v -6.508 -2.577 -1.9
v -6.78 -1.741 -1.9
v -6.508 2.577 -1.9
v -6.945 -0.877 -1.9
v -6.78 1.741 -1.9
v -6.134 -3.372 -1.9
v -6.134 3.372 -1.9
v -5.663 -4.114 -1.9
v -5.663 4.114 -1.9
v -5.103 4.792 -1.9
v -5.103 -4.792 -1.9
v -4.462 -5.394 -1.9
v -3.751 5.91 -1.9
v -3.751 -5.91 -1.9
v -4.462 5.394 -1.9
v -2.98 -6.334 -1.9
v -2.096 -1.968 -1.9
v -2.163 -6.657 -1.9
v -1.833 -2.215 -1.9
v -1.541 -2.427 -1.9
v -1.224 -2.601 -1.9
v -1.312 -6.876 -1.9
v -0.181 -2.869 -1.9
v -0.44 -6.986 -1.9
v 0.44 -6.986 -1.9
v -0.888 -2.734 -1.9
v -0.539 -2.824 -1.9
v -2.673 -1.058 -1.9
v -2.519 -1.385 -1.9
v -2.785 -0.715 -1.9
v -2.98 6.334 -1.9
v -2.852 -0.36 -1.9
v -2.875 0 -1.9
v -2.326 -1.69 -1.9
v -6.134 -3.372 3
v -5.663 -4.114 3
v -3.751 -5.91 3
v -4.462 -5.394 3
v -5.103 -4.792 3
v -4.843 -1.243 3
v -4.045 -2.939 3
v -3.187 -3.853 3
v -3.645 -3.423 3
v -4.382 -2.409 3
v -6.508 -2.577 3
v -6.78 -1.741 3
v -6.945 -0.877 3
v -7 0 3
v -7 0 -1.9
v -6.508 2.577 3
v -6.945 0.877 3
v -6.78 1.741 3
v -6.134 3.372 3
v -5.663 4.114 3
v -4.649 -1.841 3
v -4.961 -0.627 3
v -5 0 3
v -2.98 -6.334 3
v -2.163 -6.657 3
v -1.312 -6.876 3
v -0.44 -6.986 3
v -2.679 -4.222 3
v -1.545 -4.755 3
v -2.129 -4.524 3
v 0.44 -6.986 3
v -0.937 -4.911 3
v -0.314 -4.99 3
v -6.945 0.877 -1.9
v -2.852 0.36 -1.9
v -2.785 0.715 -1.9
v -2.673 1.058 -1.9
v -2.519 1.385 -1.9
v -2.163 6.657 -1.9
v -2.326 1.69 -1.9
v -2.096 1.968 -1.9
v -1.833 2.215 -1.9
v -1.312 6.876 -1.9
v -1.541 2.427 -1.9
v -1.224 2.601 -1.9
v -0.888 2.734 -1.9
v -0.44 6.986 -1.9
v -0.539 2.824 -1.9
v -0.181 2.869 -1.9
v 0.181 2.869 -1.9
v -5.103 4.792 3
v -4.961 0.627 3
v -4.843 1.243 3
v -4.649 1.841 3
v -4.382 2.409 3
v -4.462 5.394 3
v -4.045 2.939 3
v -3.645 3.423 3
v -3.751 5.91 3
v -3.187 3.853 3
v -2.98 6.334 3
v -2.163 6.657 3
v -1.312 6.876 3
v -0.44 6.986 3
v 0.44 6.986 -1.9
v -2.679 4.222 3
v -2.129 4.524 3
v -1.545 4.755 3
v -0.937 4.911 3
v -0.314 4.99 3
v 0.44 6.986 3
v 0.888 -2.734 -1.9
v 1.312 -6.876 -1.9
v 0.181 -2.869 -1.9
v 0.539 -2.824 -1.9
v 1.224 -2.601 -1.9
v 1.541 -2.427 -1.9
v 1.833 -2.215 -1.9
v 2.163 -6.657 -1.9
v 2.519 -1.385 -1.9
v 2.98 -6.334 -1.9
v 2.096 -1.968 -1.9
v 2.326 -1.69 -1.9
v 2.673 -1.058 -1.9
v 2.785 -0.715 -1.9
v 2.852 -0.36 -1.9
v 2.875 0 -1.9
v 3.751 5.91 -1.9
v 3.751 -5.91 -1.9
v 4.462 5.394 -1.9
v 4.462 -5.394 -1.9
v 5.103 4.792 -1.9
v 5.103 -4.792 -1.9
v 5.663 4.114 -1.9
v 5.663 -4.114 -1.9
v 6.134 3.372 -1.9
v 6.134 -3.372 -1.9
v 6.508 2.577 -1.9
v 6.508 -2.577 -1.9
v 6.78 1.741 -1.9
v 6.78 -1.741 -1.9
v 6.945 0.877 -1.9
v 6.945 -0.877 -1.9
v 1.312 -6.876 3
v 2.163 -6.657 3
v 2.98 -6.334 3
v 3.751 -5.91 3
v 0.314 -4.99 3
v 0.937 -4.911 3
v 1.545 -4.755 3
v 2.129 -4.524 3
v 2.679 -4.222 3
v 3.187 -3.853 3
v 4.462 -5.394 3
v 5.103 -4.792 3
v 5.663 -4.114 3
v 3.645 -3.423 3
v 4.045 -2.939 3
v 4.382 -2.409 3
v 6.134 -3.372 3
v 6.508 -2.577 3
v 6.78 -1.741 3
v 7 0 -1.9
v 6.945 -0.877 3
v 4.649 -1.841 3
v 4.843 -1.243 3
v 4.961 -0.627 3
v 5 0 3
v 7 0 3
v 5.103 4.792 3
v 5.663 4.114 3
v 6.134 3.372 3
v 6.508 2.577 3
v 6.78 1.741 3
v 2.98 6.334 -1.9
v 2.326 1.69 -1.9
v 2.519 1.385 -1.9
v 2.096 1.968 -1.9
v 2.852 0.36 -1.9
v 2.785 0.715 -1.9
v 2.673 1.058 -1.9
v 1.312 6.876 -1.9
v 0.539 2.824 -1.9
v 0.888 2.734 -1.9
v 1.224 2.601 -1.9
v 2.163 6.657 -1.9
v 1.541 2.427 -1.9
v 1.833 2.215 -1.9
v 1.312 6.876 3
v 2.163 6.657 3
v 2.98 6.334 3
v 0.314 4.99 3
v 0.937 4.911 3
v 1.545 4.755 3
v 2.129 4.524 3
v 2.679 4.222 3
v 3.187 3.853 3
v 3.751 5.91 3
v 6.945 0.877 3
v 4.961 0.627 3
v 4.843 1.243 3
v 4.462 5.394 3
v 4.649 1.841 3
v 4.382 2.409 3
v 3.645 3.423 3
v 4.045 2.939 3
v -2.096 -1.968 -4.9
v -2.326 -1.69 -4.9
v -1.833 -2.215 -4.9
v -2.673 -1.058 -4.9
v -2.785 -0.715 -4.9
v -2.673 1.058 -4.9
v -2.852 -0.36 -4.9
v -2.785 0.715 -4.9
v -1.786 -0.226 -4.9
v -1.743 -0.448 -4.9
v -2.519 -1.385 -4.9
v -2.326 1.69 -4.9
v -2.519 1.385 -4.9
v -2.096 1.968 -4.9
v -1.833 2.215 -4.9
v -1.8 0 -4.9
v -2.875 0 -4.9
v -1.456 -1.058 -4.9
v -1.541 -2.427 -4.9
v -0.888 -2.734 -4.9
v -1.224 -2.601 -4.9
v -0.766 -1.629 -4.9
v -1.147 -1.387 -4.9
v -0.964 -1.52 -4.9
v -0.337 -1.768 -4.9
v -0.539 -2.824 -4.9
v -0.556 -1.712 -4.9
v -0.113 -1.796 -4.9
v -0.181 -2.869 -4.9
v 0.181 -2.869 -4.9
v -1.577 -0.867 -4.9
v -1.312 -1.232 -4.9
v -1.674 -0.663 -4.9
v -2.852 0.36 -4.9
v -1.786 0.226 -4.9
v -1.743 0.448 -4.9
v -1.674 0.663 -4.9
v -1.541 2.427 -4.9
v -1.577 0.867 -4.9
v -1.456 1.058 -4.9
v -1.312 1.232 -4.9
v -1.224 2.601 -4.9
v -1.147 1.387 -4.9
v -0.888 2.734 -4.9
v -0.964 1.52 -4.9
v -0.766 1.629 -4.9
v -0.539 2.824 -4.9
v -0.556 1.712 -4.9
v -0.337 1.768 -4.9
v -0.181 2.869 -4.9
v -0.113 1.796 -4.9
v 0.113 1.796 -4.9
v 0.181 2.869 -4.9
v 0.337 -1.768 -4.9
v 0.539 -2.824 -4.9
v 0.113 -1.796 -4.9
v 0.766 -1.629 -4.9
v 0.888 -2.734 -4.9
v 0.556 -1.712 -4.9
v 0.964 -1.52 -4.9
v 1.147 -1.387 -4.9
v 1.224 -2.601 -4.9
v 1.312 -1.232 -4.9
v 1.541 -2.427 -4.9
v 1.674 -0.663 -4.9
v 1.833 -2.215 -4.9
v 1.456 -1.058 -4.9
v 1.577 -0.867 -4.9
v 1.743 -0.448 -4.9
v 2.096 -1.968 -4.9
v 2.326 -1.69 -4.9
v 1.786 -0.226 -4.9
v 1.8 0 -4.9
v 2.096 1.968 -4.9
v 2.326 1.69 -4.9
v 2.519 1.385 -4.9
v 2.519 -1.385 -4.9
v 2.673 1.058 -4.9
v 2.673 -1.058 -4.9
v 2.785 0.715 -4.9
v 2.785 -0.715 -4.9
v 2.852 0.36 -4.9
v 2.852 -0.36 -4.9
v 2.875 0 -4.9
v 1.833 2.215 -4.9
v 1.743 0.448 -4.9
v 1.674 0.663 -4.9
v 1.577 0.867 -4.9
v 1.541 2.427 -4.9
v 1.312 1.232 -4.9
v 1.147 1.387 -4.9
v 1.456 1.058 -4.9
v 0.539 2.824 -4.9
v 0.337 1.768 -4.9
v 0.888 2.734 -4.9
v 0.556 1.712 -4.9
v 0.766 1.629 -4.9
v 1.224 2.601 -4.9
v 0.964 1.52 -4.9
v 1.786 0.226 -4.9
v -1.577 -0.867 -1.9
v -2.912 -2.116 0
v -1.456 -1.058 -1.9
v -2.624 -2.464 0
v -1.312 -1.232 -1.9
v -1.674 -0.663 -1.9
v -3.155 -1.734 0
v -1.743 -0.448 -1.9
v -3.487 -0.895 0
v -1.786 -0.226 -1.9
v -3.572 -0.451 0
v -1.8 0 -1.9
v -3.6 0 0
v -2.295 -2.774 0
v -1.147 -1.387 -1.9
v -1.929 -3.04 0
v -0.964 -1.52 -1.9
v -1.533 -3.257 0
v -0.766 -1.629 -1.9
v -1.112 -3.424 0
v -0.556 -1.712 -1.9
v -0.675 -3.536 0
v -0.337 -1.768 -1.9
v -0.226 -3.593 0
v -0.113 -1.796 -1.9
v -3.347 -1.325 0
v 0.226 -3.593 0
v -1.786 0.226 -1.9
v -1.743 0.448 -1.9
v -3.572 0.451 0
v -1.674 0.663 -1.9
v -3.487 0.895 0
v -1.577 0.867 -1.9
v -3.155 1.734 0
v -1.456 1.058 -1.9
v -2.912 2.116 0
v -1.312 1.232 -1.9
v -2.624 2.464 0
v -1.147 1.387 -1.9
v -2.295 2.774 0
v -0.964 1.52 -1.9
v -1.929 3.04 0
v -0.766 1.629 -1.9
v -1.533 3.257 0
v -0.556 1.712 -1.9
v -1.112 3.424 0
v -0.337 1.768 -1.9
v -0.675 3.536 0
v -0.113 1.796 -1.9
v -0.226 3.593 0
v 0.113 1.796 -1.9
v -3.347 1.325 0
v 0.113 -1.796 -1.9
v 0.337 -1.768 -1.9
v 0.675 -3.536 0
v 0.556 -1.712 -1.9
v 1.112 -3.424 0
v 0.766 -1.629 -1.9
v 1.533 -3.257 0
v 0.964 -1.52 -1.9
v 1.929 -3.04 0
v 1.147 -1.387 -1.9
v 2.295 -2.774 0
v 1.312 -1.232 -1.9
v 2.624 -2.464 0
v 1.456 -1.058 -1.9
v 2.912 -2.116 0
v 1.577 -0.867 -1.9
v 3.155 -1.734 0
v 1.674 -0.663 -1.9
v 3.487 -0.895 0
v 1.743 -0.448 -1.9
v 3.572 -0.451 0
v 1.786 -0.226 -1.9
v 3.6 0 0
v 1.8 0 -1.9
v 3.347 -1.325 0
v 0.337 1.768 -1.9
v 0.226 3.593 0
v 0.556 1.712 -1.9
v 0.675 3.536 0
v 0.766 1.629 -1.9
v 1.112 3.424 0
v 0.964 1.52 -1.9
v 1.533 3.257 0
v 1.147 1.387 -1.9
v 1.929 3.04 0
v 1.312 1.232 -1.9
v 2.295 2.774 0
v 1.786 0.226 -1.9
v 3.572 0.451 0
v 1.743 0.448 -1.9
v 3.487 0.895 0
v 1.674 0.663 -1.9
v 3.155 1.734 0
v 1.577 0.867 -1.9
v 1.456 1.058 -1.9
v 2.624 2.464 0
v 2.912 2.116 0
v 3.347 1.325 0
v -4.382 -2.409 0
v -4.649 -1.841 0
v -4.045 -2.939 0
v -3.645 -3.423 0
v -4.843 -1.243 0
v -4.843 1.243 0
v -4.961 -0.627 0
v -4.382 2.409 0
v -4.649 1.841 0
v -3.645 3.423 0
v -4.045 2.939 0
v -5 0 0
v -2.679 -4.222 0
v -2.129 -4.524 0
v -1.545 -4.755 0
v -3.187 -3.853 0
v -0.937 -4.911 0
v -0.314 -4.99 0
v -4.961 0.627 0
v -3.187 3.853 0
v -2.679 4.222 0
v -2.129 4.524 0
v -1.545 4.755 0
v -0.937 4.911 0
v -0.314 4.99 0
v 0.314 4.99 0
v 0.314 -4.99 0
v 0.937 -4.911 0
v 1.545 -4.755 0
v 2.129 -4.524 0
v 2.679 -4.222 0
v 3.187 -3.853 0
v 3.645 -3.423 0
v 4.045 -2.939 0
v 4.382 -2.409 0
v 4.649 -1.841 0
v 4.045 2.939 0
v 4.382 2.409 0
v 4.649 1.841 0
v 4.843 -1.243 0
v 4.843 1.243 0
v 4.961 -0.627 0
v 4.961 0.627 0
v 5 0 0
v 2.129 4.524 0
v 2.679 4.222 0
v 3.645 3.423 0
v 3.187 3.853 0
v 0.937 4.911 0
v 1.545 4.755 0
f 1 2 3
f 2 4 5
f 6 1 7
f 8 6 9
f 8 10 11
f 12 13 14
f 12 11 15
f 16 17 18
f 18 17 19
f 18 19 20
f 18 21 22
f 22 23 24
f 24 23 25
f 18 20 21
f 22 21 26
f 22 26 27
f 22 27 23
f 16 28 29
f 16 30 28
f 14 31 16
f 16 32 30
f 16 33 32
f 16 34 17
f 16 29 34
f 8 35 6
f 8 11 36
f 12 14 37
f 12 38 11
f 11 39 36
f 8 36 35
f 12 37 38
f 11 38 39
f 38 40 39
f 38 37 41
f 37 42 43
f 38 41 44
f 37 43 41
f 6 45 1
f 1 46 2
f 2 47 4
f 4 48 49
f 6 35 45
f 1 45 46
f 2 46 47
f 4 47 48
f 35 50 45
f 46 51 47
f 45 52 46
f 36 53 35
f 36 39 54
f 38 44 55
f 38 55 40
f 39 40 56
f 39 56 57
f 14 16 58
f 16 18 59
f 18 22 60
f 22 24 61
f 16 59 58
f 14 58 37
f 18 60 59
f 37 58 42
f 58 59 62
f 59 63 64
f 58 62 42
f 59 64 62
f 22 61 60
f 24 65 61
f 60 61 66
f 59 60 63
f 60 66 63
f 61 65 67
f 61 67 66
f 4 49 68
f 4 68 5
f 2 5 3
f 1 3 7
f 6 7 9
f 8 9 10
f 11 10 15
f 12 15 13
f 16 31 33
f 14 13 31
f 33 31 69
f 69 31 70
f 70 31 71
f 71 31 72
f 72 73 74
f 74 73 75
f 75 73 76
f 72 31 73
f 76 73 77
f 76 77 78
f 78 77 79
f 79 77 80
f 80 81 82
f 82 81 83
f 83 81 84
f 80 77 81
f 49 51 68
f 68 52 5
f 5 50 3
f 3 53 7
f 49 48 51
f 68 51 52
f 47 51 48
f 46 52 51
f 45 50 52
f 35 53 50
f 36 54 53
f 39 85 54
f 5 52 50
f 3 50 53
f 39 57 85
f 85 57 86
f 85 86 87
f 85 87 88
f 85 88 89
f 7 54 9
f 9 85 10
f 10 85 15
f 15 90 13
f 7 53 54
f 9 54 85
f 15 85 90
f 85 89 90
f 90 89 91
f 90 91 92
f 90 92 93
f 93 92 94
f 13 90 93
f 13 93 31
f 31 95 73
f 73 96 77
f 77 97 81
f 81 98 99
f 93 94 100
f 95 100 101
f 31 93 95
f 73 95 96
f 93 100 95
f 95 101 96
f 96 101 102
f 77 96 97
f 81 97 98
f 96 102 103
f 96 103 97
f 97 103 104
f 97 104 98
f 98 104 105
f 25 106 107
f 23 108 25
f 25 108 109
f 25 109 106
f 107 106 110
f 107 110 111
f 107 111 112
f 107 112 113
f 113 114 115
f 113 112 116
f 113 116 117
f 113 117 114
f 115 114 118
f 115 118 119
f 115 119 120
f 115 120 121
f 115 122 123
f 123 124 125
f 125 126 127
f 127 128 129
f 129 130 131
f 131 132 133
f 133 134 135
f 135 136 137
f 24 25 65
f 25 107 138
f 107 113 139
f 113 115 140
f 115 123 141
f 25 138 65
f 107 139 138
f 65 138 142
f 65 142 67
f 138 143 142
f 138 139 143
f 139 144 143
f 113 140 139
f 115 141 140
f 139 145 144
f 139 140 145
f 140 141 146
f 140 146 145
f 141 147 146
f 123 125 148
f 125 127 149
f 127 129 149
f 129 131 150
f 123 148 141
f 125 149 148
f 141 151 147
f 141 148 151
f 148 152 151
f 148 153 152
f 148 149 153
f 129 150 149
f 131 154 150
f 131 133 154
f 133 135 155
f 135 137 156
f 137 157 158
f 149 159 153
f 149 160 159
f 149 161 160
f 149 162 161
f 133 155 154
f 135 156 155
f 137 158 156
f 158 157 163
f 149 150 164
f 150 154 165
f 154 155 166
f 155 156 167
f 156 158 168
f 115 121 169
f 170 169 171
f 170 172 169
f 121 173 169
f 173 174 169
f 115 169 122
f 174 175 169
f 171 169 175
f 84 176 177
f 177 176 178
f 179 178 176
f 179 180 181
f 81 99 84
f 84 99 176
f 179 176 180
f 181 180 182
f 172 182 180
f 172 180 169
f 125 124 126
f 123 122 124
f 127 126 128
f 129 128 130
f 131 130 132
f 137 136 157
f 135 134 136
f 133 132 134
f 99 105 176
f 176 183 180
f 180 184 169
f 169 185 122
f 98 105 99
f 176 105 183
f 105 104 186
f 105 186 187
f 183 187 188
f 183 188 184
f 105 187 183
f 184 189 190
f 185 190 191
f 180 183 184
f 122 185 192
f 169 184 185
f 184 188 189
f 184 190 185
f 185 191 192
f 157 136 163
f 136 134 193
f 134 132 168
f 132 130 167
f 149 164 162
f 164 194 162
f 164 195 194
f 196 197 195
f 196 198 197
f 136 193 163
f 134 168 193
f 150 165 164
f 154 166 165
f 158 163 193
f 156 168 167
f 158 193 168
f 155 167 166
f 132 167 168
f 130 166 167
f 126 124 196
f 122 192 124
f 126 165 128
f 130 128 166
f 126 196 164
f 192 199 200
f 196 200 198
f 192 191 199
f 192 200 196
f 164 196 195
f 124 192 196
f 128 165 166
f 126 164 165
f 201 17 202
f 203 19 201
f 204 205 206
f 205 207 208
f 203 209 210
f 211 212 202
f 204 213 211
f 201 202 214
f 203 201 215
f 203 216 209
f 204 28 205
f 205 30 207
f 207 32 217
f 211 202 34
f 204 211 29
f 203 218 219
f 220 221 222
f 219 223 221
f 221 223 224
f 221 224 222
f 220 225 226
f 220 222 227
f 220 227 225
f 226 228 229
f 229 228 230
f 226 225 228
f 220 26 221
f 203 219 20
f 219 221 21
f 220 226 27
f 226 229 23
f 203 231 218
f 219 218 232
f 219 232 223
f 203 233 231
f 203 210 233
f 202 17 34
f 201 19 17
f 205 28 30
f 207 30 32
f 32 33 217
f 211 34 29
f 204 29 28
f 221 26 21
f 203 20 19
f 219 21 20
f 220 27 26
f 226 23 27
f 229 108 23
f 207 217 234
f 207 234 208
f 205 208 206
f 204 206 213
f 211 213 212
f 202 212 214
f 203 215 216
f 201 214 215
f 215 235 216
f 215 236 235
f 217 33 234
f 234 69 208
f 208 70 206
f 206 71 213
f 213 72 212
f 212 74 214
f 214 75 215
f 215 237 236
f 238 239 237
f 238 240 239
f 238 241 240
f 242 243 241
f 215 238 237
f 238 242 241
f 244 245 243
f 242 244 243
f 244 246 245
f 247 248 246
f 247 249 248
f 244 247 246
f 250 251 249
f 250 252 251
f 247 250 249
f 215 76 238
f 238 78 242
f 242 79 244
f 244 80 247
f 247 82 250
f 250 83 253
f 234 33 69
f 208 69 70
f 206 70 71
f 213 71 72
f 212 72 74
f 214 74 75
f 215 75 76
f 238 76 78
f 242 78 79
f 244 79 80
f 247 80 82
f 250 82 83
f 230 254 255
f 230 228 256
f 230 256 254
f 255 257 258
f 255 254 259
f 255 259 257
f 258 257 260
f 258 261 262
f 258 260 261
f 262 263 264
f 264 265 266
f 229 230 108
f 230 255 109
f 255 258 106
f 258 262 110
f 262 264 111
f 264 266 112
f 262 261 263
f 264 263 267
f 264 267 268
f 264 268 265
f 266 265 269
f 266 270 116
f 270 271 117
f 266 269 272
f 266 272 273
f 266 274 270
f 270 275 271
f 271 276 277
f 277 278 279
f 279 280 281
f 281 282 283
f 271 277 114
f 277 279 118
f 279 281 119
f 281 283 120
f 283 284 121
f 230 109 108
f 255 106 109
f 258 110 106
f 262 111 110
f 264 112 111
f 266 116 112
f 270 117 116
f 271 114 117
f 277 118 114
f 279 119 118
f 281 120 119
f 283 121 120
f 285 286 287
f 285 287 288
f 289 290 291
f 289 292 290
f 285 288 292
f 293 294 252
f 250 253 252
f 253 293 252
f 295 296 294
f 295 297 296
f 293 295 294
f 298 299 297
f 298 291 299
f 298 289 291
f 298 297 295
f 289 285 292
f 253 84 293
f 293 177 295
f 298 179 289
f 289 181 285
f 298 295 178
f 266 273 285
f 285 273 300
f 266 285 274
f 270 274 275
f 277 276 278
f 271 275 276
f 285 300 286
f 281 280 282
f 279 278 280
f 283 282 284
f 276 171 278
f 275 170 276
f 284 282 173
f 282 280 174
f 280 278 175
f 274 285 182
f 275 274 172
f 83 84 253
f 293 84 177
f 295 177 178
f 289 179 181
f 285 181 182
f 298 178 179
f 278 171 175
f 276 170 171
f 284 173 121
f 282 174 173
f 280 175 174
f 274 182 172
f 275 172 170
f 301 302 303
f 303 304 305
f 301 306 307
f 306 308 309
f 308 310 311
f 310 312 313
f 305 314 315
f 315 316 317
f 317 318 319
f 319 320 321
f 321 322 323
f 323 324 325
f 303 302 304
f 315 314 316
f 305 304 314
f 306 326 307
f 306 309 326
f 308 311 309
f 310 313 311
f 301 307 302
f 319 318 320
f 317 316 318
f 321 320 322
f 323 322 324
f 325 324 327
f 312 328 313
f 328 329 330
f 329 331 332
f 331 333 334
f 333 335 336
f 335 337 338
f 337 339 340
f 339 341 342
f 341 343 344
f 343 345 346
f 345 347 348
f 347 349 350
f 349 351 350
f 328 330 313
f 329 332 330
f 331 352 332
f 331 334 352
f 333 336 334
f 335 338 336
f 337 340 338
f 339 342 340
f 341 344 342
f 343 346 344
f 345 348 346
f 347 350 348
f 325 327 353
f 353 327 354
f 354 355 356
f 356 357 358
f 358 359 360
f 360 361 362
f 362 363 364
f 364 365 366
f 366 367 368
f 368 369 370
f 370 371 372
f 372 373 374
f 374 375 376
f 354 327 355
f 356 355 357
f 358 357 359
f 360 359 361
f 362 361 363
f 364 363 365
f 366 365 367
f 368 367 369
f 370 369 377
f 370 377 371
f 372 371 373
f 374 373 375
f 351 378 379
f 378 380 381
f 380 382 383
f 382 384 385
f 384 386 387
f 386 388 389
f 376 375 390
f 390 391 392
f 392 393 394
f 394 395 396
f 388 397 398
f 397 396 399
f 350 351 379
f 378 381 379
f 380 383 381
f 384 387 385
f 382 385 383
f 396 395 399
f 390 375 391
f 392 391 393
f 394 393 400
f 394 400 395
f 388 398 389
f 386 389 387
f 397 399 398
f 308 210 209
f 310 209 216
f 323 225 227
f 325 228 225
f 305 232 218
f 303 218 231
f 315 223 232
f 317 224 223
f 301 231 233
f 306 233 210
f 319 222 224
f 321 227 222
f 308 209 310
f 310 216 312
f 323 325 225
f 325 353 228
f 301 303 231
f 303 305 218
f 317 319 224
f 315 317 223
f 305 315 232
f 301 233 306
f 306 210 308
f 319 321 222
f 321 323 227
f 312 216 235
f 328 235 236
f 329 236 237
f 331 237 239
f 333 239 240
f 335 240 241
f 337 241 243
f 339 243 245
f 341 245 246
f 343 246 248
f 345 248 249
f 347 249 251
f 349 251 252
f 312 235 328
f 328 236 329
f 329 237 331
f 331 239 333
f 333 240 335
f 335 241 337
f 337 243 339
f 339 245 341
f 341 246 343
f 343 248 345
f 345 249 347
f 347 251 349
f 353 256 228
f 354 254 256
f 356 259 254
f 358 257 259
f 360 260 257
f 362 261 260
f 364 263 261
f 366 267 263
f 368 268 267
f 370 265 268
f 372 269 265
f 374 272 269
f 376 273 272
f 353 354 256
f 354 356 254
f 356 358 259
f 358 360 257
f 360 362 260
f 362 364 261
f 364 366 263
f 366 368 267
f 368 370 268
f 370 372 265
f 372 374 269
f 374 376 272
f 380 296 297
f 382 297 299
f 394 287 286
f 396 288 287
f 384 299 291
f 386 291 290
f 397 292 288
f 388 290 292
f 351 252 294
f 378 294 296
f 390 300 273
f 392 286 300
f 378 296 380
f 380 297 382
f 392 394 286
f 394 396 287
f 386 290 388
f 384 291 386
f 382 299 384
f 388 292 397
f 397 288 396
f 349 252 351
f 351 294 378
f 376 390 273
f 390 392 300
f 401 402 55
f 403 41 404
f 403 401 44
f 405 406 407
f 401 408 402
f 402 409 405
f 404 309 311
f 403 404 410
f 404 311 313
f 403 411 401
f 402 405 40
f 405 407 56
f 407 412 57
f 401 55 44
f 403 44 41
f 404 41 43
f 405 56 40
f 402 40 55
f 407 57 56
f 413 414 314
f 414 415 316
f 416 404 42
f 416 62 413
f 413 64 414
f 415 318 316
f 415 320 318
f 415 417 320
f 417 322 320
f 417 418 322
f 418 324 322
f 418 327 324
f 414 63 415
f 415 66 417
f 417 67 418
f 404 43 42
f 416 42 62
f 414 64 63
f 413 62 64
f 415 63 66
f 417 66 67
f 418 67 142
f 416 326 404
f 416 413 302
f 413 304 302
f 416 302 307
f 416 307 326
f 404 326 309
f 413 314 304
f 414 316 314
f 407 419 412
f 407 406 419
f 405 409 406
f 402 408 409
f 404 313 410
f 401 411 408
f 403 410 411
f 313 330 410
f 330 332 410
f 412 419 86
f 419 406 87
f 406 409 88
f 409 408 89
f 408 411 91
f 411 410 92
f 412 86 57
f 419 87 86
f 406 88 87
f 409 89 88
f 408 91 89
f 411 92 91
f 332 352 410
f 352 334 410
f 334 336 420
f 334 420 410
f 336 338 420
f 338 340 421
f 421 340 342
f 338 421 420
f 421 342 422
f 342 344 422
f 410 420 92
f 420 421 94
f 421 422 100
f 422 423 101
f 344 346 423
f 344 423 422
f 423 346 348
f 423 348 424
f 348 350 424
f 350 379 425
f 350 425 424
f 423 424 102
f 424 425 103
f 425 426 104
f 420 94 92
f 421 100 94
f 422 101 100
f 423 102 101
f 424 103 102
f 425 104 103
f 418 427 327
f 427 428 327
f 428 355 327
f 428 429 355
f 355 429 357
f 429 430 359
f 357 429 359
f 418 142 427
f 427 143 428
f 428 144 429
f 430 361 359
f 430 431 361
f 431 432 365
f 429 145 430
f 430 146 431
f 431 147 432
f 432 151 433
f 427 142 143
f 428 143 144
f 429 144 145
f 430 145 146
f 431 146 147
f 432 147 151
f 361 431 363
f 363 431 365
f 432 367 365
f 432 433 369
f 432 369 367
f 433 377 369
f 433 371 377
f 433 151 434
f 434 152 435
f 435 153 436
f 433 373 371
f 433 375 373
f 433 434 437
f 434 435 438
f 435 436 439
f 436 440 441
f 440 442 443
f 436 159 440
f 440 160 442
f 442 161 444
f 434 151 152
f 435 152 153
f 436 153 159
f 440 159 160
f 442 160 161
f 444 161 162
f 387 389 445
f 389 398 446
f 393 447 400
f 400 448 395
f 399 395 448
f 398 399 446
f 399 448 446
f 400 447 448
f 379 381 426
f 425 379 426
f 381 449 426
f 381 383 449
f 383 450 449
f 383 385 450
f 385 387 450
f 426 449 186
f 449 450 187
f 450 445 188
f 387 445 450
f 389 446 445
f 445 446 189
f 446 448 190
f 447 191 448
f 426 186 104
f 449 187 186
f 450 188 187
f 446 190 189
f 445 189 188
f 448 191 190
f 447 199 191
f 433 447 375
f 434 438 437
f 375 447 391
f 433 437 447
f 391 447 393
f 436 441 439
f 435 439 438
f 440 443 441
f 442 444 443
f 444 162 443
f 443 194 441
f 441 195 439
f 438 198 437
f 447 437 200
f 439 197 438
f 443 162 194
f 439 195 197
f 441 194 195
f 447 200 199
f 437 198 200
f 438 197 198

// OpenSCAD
$fn = 50;

difference() {
	union() {
		translate(v = [0, 0, -1.9000000000000004]) {
			cylinder(h = 4.9, r = 7.0);
		}
		#translate(v = [0, 0, -4.9]) {
			cylinder(h = 4.9, r = 2.875);
		}
	}
	union() {
		translate(v = [0, 0, 0]) {
			rotate(a = [0, 0, 0]) {
				difference() {
					union() {
						translate(v = [0, 0, -4.9]) {
							cylinder(h = 4.9, r = 1.5);
						}
						translate(v = [0, 0, -1.9]) {
							cylinder(h = 1.9, r1 = 1.8, r2 = 3.6);
						}
						translate(v = [0, 0, -4.9]) {
							cylinder(h = 4.9, r = 1.8);
						}
						translate(v = [0, 0, -4.9]) {
							cylinder(h = 4.9, r = 1.5);
						}
					}
					union();
				}
			}
		}
		#cylinder(h = 3, r = 5.0);
	}
}
